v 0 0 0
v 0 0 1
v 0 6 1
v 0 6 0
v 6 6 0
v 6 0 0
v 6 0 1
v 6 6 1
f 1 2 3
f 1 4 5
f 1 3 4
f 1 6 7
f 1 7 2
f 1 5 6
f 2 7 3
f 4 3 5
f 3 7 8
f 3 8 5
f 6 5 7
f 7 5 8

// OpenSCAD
/* Warning, this is a very basic generator with a lot of approximation 
input data : [QFN, M4X, 6x6x1.0mm, 28, , D, C04-00105D]
generated by com.zoubworld.electronics.cad.model3d.Basic
Date : Sun Feb 15 10:50:48 CET 2026
*/

//body
color("black")
translate([0,0,0])
cube([6.0,6.0,1.0], center=false);
